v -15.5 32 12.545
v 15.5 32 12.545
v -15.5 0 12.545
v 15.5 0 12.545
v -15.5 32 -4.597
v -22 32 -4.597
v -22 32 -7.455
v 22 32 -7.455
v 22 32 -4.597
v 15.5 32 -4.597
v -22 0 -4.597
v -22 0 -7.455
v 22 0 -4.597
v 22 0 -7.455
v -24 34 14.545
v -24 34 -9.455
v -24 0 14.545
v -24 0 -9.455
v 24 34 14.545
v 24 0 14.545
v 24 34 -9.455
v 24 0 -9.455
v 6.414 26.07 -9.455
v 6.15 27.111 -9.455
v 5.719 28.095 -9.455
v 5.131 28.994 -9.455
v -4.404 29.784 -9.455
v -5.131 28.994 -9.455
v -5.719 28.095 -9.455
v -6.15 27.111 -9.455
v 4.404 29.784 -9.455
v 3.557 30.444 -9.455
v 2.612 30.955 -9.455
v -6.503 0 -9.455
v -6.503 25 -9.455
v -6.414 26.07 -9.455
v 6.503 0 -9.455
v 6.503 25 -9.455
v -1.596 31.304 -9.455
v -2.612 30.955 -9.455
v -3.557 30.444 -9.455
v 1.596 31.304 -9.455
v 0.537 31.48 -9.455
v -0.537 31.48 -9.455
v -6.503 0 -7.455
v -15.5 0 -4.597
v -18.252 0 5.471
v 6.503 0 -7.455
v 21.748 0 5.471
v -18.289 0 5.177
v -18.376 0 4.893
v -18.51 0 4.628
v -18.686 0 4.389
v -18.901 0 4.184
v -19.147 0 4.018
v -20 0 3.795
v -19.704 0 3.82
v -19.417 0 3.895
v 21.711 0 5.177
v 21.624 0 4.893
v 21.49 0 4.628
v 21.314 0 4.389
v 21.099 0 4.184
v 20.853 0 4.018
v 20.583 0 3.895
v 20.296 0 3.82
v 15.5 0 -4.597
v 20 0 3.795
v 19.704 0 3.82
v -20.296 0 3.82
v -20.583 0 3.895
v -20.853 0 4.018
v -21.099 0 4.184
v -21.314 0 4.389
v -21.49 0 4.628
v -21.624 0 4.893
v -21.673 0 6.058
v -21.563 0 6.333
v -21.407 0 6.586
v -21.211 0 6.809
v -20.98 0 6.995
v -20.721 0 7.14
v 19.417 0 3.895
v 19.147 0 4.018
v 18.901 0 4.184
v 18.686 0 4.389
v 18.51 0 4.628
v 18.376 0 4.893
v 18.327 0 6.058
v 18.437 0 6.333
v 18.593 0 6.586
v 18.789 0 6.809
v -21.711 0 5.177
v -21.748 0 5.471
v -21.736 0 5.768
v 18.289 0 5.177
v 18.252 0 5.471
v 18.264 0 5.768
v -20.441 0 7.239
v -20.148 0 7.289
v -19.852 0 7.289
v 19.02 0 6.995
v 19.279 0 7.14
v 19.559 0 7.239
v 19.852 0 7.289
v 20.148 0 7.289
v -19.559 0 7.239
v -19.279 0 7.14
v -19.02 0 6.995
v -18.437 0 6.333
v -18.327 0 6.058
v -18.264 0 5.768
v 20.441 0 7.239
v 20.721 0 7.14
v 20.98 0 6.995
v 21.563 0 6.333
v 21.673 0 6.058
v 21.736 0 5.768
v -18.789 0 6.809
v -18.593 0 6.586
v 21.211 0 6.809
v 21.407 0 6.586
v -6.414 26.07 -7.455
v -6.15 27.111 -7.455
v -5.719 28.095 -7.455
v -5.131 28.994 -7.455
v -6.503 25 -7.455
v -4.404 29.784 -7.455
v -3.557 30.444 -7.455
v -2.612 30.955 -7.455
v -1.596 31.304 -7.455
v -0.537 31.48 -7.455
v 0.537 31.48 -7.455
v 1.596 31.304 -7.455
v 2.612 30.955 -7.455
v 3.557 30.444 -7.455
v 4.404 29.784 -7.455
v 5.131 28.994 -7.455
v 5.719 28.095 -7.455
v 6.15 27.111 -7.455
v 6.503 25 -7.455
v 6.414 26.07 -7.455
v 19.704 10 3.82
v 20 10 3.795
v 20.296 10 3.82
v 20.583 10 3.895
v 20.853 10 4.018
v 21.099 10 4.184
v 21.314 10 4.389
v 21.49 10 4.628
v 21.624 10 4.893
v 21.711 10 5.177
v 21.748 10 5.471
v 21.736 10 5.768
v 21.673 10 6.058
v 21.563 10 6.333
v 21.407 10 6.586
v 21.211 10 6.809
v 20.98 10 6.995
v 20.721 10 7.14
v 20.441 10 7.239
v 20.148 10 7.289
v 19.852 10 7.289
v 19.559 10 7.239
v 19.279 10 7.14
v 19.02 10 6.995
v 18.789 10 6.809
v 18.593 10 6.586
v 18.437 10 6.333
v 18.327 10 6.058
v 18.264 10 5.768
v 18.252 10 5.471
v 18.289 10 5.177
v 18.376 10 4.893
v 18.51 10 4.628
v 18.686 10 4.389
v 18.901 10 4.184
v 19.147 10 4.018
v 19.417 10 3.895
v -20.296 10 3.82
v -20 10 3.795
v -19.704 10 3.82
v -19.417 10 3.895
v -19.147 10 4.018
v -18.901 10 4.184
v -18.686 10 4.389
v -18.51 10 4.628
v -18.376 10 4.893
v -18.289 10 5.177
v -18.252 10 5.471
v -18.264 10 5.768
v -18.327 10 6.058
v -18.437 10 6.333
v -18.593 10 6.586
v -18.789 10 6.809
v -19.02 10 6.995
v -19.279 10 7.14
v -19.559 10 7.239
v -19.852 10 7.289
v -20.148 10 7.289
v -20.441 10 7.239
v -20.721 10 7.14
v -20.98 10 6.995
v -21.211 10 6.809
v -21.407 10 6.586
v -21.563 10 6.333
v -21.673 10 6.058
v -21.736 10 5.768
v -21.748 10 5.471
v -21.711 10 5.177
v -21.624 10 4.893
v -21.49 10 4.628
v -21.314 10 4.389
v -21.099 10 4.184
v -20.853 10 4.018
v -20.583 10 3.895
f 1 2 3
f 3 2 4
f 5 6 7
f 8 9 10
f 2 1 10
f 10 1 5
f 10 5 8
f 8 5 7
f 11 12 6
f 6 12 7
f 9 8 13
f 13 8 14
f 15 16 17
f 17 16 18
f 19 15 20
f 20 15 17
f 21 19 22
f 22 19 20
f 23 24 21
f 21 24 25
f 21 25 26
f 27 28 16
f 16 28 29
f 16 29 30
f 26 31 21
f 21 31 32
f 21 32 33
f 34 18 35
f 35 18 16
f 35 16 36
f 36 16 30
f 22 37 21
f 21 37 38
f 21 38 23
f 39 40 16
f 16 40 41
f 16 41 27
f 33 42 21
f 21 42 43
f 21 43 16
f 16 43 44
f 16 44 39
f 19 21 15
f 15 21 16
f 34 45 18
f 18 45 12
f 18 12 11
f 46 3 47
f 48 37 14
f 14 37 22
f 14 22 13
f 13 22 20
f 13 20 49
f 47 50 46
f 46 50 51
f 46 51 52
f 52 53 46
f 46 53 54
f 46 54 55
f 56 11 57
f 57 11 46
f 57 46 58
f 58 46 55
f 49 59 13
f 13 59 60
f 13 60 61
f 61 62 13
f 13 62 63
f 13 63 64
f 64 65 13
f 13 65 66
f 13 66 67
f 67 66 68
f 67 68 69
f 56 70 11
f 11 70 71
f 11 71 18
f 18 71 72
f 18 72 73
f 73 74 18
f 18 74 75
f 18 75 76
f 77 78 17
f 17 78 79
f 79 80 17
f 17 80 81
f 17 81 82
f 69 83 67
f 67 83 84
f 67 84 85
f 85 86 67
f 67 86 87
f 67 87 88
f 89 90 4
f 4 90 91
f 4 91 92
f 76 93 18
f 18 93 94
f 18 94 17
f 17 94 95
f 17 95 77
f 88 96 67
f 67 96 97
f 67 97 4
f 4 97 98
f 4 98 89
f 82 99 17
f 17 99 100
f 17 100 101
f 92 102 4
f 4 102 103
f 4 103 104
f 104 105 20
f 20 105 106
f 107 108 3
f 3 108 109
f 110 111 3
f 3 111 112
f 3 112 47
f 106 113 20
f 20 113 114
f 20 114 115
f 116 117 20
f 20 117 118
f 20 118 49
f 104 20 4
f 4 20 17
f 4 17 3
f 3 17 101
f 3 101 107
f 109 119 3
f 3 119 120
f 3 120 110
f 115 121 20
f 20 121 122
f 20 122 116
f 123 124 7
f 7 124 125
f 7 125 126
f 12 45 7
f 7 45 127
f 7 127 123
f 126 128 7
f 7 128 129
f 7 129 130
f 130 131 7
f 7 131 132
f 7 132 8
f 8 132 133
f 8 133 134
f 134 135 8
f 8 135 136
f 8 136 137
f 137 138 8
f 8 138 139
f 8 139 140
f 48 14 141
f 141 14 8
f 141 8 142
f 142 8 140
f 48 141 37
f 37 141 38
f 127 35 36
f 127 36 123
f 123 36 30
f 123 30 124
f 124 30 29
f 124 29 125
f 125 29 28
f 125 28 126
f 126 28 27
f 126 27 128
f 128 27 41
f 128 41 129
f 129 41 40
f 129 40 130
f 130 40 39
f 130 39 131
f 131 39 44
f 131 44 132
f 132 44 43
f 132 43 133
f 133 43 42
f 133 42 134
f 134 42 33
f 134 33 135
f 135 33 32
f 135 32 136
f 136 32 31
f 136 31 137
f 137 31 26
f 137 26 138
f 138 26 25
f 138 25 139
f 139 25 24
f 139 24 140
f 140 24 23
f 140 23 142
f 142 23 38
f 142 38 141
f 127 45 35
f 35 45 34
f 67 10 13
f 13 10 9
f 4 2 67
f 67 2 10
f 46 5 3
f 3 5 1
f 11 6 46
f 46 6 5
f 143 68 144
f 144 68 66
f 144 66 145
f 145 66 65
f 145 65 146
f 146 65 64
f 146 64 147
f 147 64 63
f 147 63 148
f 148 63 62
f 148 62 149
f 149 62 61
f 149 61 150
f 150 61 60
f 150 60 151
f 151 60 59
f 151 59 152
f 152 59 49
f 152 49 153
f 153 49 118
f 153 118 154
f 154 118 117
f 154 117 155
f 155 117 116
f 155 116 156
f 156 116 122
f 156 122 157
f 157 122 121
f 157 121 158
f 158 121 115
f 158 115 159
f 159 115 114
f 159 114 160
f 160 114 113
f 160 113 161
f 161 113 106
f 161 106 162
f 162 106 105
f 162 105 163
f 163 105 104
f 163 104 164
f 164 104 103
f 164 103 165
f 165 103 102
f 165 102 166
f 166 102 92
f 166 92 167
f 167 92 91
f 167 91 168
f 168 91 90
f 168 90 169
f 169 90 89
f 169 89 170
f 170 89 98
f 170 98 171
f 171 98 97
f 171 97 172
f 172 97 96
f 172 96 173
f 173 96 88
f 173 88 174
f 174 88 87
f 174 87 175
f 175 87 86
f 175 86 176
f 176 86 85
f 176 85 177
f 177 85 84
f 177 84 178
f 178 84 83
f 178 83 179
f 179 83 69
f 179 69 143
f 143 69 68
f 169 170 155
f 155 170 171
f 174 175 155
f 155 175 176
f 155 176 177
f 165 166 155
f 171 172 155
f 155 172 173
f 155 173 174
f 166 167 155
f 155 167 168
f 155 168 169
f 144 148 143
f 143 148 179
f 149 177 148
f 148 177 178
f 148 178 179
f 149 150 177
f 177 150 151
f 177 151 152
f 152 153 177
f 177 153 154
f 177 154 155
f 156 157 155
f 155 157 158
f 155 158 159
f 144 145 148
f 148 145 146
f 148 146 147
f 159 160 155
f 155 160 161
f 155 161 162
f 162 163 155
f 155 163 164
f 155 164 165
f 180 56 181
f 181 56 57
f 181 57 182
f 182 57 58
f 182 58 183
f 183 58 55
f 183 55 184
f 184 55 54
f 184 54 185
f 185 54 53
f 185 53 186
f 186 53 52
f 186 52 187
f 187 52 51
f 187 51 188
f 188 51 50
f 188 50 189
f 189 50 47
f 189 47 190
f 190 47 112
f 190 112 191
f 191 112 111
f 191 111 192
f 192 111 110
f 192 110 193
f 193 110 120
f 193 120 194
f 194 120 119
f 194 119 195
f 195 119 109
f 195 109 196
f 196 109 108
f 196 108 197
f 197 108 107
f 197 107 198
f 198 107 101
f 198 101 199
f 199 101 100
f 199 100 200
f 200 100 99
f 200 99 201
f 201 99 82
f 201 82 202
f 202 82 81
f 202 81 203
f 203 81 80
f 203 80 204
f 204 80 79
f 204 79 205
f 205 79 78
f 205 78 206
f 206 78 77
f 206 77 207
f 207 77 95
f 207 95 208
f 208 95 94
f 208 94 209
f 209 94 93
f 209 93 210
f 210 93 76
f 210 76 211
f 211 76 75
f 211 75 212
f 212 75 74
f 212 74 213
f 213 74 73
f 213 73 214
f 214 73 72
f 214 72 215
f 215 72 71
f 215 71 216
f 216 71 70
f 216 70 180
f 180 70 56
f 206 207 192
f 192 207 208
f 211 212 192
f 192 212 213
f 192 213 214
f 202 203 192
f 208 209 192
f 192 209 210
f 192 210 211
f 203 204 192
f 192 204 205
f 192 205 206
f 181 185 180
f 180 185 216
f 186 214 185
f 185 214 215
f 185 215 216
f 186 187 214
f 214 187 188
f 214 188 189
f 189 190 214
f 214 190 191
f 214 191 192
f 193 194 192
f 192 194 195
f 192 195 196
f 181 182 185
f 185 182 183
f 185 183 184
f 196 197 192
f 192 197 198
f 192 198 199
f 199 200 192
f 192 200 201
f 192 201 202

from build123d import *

# Parameters (mm, degrees)
SKETCH1_W           = 48
SKETCH1_H           = 24
BOSS_EXTRUDE1_DEPTH = 34
SHELL1_T            = -2
CUT_EXTRUDE1_DEPTH  = 2
SKETCH3_W           = 6.5
SKETCH3_H           = 17.142463893
BOSS_EXTRUDE2_DEPTH = 32
SKETCH4_R           = 1.75
CUT_EXTRUDE2_DEPTH  = 10


with BuildPart() as part:
    # Sketch1 → Boss-Extrude1 (new body)
    with BuildSketch(Plane(origin=(0, 0, 0), x_dir=(1, 0, 0), z_dir=(0, 1, 0))):
        with Locations((0, -2.545302013)):
            Rectangle(SKETCH1_W, SKETCH1_H)
    extrude(amount=BOSS_EXTRUDE1_DEPTH)

    # Shell1
    shell1_openings = [part.faces().sort_by_distance(p)[0] for p in [
        (0, 0, 2.545302013),
    ]]
    offset(amount=SHELL1_T, openings=shell1_openings, kind=Kind.INTERSECTION)

    # Sketch2 → Cut-Extrude1 (cut)
    with BuildSketch(Plane(origin=(0, 0, -9.454697987), x_dir=(-1, 0, 0), z_dir=(0, 0, -1))):
        with BuildLine():
            Line((-6.502577746, 0), (6.502577746, 0))
            Line((6.502577746, 0), (6.502577746, 25))
            ThreePointArc((6.502577746, 25), (0, 31.502577746), (-6.502577746, 25))
            Line((-6.502577746, 25), (-6.502577746, 0))
        make_face()
    extrude(amount=-CUT_EXTRUDE1_DEPTH, mode=Mode.SUBTRACT)

    # Sketch3 → Boss-Extrude2 (add)
    with BuildSketch(Plane.XZ.offset(-32)):
        with Locations((18.75, 3.974070066)):
            Rectangle(SKETCH3_W, SKETCH3_H)
        with Locations((-18.75, 3.974070066)):
            Rectangle(SKETCH3_W, SKETCH3_H)
    extrude(amount=BOSS_EXTRUDE2_DEPTH)

    # Sketch4 → Cut-Extrude2 (cut)
    with BuildSketch(Plane.XZ):
        with Locations((20, 5.545302013)):
            Circle(SKETCH4_R)
        with Locations((-20, 5.545302013)):
            Circle(SKETCH4_R)
    extrude(amount=-CUT_EXTRUDE2_DEPTH, mode=Mode.SUBTRACT)


solid = part.part
